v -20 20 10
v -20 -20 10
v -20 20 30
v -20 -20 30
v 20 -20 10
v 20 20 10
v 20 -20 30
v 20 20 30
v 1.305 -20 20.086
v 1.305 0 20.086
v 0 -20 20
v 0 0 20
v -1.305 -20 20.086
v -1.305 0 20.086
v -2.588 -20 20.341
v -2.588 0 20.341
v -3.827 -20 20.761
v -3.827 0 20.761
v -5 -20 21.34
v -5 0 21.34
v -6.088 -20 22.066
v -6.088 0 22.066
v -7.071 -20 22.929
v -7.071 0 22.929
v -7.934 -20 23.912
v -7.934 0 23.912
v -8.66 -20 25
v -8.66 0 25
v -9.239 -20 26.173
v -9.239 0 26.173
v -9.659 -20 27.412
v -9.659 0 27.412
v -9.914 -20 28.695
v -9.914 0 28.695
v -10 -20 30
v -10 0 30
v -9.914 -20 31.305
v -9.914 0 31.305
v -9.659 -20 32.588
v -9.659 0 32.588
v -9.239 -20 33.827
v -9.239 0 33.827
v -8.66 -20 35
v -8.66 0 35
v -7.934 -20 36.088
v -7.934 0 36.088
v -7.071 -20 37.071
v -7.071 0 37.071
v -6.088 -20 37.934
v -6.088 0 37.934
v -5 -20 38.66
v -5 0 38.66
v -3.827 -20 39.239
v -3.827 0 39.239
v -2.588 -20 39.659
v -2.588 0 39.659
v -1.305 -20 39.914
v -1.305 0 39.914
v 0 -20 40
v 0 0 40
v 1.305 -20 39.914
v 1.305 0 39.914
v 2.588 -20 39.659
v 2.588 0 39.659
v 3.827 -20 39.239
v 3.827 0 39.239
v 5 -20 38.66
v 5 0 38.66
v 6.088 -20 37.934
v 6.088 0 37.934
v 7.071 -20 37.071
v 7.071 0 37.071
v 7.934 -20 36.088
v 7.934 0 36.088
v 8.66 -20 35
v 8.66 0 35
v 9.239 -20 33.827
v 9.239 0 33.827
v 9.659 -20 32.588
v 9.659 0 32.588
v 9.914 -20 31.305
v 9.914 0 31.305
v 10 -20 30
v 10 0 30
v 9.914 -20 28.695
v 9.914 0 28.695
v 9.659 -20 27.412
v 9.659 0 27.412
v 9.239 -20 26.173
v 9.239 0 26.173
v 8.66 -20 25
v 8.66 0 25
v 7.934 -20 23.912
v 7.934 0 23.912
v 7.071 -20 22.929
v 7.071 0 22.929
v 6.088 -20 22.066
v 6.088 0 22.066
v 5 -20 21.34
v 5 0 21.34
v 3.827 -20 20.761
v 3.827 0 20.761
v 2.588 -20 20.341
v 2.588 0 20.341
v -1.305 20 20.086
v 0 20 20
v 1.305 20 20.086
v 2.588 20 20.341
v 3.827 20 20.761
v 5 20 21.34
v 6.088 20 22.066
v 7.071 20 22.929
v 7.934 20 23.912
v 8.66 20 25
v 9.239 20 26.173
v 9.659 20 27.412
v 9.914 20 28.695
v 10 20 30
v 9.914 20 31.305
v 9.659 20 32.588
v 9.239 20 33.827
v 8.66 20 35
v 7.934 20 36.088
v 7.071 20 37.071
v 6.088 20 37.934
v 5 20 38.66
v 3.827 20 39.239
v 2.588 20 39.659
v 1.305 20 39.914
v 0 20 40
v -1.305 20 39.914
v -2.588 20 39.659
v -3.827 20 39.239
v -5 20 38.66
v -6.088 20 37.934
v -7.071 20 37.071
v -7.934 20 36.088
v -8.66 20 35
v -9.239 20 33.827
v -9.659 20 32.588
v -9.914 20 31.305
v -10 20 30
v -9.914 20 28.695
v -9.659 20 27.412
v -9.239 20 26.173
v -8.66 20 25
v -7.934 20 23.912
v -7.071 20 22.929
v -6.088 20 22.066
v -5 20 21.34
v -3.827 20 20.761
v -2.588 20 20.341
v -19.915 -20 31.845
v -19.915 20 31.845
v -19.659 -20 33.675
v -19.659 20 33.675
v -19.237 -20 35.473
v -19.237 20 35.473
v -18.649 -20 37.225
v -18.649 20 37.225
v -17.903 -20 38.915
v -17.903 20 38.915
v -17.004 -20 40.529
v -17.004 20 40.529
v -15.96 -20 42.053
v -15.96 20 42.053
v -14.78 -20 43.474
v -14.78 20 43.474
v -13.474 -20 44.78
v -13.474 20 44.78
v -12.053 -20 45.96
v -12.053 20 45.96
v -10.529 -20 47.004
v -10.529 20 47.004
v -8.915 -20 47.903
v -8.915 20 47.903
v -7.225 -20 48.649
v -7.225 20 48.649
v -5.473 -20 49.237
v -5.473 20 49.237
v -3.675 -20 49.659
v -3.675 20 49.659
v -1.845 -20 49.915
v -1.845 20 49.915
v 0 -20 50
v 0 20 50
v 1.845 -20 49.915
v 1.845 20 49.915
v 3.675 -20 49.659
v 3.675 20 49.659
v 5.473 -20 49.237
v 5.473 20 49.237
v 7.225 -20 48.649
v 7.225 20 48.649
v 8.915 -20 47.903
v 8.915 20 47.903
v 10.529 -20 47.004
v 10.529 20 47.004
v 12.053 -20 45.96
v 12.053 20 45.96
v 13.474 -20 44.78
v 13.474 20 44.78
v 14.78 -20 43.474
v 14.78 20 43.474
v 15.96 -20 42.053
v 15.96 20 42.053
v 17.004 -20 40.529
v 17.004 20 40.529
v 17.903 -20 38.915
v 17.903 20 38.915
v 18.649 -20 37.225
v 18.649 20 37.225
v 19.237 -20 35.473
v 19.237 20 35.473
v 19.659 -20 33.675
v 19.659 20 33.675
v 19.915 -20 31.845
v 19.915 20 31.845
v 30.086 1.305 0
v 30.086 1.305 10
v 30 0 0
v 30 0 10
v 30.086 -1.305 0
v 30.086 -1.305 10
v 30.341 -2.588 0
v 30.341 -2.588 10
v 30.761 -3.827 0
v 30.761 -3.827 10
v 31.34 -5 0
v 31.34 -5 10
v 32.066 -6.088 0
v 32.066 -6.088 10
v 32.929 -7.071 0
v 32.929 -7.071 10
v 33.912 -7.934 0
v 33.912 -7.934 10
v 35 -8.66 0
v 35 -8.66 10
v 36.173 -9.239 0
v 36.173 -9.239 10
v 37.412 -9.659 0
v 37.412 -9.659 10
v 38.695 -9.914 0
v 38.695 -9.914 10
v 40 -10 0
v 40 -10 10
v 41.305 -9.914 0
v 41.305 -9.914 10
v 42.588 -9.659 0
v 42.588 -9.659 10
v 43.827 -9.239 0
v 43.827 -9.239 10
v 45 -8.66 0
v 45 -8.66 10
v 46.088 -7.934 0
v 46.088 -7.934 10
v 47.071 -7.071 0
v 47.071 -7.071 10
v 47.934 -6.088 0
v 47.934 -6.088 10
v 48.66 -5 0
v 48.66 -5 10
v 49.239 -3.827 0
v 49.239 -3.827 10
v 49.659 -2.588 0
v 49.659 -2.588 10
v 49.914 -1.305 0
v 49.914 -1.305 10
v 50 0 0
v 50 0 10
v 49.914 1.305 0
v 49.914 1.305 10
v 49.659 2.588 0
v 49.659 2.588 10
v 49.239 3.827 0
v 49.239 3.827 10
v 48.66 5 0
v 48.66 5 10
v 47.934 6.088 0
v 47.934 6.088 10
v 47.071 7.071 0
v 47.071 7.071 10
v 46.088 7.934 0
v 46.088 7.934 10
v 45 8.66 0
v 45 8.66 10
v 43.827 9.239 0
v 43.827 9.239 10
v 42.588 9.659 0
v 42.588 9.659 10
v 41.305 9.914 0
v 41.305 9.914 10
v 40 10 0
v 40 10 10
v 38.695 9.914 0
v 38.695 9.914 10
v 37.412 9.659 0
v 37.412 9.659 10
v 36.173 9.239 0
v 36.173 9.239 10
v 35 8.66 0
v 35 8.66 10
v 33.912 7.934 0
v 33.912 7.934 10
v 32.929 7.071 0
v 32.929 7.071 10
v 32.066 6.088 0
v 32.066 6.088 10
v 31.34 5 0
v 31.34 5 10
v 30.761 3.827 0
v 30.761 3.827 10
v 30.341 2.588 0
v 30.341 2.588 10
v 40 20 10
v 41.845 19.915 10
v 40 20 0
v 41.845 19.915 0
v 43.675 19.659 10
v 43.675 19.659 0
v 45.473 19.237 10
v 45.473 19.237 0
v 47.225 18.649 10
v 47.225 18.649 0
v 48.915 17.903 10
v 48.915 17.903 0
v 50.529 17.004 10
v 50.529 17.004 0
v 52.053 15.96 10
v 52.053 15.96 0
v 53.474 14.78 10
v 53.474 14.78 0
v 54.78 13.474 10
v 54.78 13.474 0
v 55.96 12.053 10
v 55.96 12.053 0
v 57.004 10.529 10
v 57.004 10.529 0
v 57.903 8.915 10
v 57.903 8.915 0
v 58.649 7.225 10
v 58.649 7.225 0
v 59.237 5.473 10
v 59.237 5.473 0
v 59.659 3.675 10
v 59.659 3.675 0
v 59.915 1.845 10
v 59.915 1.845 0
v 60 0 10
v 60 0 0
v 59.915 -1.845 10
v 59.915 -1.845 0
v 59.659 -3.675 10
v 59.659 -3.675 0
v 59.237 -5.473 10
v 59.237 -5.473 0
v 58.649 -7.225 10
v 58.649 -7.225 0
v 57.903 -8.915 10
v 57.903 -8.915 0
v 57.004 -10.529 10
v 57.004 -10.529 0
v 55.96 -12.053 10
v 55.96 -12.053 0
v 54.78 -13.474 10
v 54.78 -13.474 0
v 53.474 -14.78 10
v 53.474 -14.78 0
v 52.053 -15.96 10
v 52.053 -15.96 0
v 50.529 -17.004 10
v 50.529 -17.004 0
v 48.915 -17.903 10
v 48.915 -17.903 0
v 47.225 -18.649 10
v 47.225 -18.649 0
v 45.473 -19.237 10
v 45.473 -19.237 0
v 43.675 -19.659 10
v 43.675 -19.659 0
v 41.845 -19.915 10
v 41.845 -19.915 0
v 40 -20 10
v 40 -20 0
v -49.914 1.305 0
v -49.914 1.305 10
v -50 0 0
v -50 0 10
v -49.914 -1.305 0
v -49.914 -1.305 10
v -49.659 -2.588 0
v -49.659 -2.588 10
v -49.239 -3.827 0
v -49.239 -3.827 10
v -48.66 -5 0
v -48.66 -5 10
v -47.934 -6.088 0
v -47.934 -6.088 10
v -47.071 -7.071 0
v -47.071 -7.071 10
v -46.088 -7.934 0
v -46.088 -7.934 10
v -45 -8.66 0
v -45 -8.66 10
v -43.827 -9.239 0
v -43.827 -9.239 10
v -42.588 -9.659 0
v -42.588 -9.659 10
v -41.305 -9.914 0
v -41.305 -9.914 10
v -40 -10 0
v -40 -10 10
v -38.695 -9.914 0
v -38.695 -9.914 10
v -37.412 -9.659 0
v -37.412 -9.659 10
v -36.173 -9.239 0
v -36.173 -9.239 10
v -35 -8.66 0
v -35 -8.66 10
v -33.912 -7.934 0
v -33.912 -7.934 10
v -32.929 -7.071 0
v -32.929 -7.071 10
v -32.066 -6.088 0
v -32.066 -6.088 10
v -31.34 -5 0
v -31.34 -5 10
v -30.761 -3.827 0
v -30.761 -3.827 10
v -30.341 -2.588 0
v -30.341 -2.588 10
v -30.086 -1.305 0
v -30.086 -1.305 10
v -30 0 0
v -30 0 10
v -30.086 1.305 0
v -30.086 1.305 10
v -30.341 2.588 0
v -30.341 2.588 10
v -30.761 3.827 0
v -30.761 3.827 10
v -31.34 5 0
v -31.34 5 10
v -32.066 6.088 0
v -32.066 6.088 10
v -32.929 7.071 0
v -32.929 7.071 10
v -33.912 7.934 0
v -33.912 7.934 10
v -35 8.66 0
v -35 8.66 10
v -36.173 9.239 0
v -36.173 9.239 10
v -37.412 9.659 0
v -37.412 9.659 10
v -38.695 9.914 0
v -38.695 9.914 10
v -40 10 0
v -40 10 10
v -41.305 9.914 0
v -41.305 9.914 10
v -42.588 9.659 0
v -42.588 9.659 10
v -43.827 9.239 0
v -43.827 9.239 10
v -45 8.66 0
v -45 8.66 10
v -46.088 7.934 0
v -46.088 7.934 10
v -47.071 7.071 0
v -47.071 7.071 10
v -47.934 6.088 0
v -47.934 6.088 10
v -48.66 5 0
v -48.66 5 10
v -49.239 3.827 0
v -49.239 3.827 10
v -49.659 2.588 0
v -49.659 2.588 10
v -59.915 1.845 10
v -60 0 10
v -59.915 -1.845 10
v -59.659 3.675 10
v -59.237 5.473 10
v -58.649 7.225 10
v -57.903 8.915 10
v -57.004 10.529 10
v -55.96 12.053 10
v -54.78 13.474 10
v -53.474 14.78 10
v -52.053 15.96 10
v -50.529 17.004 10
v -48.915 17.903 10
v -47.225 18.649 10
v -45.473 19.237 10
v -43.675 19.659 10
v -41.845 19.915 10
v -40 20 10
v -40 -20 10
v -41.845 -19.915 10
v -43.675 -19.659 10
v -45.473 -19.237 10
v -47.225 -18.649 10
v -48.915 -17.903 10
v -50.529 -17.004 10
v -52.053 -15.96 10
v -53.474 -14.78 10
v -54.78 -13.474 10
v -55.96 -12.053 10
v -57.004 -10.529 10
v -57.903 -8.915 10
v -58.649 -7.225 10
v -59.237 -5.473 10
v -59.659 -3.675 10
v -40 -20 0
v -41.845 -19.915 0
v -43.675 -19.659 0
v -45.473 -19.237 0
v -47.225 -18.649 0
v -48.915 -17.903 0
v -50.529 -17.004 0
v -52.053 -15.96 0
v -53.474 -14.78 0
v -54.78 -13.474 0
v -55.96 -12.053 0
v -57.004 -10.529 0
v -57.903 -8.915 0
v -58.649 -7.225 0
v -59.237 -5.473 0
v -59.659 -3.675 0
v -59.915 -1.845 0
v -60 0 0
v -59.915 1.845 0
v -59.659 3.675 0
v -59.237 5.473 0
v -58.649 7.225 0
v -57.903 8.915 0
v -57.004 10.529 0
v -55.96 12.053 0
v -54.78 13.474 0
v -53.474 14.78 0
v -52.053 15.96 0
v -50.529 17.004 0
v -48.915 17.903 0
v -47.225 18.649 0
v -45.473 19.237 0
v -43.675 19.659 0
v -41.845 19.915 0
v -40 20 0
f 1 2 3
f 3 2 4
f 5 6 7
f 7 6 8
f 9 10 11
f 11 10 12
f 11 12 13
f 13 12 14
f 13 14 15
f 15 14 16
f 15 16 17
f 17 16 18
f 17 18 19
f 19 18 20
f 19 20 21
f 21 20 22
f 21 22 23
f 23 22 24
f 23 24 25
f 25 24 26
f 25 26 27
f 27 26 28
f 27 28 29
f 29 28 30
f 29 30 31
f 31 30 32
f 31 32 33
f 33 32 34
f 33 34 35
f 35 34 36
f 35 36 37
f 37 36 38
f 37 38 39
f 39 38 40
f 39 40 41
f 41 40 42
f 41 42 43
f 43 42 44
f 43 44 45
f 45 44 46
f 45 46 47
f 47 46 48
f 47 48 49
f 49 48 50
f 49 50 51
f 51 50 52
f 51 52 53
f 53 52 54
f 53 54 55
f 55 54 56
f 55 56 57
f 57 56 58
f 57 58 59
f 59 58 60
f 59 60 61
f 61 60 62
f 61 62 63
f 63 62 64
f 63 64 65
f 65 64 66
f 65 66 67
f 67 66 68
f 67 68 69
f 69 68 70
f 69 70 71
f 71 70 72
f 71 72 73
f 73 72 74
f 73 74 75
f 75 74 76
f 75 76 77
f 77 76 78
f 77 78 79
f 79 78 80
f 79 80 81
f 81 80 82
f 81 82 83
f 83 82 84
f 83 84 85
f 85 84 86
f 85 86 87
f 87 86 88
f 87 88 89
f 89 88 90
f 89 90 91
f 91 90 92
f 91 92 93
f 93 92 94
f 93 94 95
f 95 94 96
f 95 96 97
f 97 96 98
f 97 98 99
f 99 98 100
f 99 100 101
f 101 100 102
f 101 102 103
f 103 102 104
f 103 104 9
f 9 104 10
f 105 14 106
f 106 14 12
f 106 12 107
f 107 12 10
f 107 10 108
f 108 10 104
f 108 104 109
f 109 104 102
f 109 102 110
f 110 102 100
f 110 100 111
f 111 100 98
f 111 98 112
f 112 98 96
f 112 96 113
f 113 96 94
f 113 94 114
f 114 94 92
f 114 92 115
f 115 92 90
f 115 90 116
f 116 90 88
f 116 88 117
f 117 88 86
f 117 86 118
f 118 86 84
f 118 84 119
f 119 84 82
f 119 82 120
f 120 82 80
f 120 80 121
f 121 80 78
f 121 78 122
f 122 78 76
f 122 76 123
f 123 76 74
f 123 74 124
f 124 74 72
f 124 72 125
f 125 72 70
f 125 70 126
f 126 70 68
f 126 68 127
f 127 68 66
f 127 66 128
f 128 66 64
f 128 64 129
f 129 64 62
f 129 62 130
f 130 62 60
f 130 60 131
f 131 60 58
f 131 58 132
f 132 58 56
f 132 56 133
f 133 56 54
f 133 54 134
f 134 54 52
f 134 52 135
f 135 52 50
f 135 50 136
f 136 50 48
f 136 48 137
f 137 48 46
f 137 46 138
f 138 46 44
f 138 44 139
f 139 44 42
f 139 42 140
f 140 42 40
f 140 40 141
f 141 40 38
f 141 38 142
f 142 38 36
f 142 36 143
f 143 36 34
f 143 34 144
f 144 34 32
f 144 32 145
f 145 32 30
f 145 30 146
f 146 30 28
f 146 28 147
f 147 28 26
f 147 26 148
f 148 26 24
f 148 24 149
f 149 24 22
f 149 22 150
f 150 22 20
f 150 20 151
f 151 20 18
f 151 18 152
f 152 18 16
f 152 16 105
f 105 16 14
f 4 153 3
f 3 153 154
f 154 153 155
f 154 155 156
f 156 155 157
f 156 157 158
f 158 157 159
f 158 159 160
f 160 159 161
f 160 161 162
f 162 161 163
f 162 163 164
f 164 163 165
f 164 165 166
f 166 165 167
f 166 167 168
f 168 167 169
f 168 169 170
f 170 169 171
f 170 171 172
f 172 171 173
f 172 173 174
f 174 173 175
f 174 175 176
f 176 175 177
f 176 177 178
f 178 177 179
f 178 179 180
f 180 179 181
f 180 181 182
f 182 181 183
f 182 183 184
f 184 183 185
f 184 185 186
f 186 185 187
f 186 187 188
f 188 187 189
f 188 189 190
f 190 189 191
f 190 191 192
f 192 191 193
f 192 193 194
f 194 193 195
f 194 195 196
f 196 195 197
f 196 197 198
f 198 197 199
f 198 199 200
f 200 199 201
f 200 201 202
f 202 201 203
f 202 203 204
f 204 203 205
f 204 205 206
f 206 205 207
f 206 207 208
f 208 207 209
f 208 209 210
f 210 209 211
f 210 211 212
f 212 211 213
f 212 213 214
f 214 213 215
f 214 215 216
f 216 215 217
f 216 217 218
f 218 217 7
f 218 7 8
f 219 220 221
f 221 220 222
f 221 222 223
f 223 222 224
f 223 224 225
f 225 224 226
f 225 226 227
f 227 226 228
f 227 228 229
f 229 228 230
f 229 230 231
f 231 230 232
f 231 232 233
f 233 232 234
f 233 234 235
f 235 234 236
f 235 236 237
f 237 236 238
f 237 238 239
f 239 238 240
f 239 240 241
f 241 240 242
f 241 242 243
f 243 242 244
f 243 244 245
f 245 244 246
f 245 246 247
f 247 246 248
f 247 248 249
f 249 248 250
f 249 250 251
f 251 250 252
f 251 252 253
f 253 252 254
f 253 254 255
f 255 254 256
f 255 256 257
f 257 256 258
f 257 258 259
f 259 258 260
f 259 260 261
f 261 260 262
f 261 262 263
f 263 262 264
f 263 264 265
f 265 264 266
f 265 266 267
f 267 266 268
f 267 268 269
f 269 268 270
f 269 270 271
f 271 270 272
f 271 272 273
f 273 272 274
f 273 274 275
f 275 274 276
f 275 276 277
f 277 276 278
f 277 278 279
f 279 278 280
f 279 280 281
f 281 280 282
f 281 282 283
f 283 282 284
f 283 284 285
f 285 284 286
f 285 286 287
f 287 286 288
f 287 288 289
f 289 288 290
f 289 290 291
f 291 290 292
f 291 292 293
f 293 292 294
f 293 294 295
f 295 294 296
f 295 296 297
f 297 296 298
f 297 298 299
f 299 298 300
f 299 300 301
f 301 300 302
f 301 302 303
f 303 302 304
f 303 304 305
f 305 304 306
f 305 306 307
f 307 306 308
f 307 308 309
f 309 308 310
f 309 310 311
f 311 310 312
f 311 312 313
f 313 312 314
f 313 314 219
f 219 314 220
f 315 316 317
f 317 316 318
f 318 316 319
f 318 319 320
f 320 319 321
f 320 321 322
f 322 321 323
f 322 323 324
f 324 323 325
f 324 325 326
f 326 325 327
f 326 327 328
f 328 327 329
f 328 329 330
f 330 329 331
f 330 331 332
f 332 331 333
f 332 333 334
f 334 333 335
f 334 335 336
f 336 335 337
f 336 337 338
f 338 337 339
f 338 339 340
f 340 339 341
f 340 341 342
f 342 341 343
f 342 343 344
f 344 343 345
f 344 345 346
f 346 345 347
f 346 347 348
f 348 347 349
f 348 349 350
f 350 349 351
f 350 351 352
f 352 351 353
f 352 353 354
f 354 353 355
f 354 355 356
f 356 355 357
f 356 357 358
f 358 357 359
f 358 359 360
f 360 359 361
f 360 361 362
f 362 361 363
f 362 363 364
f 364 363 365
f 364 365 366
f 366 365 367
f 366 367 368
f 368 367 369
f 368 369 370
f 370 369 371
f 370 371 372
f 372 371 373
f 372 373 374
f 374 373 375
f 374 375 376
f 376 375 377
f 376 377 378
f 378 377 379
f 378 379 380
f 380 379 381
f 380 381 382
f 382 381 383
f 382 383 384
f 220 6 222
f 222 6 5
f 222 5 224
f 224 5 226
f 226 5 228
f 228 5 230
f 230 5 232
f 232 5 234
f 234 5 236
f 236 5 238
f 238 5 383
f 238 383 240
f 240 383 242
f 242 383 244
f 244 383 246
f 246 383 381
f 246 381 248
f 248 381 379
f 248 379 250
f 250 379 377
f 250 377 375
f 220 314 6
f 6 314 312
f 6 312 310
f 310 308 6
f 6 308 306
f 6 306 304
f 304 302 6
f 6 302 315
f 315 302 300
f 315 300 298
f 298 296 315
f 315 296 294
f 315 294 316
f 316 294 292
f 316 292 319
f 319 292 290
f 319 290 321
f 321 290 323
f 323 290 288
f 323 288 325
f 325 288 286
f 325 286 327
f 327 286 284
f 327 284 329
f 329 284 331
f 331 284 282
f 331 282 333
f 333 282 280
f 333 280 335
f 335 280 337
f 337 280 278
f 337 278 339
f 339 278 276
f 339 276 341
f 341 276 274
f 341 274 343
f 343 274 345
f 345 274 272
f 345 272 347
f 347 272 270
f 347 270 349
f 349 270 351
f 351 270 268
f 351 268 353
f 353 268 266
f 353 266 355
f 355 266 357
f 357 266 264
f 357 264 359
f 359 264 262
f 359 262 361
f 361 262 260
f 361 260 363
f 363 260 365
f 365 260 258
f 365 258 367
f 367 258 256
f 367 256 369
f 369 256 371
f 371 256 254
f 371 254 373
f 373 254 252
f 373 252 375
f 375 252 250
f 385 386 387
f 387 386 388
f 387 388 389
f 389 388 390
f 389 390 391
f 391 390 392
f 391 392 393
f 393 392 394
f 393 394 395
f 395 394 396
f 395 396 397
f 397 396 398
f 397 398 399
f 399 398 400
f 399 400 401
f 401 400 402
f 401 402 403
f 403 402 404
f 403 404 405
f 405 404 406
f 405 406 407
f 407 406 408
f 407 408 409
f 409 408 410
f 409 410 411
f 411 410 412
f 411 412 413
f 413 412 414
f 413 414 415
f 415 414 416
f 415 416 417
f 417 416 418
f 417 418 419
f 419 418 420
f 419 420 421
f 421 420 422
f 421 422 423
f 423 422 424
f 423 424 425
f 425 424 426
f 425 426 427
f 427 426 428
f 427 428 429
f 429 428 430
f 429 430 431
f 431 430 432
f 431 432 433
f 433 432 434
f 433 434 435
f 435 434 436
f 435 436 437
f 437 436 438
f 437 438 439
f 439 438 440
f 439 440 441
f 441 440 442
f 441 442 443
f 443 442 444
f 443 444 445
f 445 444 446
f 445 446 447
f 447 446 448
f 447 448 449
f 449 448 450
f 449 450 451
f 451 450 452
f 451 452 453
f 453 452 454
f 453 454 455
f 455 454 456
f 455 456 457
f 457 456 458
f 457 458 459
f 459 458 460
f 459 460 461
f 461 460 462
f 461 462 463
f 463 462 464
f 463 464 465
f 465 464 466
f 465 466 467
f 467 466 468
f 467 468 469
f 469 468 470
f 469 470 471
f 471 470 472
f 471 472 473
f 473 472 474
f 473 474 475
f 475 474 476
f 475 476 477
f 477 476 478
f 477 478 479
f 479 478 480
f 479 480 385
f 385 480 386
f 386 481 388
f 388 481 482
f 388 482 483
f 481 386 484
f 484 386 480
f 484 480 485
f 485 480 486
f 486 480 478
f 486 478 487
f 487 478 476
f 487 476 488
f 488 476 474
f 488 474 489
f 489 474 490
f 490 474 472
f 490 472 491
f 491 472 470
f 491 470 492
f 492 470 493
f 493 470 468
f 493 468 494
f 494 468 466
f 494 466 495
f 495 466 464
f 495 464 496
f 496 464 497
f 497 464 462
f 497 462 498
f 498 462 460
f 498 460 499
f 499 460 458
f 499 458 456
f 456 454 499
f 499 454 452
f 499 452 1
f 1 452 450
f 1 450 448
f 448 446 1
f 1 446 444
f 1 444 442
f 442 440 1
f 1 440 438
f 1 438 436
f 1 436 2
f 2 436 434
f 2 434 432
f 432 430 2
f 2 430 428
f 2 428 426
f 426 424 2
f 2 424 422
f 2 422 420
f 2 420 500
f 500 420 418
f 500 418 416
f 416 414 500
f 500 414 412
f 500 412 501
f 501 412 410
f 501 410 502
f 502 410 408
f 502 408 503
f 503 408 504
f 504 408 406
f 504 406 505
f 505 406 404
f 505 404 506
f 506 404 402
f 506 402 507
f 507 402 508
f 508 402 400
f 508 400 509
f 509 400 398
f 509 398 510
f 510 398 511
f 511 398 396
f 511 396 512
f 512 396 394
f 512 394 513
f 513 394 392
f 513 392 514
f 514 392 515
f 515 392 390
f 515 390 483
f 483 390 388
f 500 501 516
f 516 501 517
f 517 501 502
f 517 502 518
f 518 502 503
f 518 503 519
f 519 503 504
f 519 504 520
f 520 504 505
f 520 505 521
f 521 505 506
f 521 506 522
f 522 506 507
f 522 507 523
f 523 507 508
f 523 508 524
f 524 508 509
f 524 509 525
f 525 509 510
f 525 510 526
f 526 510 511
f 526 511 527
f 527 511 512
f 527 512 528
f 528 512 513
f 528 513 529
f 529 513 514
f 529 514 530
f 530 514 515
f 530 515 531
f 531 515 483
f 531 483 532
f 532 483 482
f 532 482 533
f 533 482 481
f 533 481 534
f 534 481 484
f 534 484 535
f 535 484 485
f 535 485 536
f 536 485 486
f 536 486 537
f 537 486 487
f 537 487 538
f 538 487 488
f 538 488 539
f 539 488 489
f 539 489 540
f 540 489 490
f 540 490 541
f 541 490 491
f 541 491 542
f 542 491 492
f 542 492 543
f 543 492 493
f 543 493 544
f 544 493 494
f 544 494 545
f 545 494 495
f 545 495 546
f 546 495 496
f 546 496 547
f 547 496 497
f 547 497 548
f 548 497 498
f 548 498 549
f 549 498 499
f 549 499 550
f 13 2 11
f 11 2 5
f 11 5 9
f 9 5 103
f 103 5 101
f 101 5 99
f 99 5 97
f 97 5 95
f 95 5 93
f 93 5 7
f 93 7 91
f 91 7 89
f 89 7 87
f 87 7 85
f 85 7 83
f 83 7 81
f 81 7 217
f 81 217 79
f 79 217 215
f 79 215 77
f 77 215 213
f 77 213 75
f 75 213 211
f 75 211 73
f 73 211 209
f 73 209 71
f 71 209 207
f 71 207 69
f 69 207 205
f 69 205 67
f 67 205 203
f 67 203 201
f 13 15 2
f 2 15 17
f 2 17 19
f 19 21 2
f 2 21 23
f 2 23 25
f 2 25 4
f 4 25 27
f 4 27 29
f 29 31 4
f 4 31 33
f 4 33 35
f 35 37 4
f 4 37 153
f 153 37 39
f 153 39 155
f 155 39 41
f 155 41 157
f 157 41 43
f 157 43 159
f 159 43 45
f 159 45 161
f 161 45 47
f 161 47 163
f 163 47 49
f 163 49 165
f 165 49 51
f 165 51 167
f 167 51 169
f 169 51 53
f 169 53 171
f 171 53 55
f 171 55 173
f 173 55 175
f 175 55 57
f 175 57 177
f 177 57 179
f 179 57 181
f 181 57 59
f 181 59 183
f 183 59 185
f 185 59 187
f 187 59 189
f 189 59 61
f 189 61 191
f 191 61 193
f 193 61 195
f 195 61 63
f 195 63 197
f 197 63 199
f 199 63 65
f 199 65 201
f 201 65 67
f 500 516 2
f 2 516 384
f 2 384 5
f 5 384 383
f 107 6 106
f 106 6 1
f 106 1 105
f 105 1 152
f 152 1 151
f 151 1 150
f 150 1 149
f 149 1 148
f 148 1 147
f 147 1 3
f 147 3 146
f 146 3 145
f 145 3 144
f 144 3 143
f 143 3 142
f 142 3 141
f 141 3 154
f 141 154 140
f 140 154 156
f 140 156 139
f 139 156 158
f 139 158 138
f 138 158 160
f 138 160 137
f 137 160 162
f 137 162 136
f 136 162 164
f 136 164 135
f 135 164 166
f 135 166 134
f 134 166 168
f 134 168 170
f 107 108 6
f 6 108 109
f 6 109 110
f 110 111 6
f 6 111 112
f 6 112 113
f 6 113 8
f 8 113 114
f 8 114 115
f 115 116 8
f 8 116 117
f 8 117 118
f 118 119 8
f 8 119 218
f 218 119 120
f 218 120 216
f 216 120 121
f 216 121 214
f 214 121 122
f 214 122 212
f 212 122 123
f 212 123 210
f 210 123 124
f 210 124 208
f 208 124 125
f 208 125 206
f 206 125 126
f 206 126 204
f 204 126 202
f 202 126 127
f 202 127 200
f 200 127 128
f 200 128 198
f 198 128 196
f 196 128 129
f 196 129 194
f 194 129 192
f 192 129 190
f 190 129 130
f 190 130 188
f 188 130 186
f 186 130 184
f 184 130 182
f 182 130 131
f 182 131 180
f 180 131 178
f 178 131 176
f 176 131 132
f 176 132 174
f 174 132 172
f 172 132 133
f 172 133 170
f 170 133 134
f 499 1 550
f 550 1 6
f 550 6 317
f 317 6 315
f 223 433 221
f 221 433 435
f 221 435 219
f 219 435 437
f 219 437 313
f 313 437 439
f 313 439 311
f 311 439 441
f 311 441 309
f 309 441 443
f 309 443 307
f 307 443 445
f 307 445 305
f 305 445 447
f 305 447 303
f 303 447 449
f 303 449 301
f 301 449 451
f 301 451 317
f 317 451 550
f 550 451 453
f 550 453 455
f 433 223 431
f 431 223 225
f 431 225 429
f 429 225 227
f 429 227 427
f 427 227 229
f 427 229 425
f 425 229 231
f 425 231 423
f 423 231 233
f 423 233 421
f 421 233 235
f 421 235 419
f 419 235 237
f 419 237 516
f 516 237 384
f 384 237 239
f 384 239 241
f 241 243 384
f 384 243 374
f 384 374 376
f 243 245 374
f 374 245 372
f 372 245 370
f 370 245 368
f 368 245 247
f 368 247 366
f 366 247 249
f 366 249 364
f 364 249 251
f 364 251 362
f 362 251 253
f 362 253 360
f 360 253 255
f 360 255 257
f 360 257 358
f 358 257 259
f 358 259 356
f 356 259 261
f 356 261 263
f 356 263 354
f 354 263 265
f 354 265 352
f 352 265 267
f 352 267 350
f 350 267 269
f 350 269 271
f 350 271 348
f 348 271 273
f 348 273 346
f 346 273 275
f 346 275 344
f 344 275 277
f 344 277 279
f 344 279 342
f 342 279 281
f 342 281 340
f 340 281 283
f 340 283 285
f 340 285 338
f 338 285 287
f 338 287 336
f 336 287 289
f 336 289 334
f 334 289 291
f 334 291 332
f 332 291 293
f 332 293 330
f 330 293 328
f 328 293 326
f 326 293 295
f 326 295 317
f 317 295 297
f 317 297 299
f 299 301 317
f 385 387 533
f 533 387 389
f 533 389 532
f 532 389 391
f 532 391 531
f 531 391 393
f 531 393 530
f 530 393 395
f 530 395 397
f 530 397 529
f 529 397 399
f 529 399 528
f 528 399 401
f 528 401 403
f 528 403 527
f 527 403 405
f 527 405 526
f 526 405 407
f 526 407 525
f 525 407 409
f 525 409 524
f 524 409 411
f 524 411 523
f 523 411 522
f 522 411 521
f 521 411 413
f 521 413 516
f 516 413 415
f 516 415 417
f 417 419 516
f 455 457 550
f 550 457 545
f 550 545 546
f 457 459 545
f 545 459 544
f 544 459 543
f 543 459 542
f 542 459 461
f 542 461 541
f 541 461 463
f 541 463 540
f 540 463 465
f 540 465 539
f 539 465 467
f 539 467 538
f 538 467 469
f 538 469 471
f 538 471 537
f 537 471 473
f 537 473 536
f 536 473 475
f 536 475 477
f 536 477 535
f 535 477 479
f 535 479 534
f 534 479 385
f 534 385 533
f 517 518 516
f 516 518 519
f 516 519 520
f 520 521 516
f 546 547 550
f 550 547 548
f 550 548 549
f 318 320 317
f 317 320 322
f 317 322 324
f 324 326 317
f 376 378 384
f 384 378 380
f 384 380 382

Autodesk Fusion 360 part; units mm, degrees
sketch "Sketch1" plane through (0, 0, 0) normal (0, 0, 1) x (1, 0, 0)
  line L0 (40, 20) -> (-40, 20)
  line L1 (-40, 20) -> (-40, -20)
  line L2 (-40, -20) -> (40, -20)
  line L3 (40, -20) -> (40, 20)
  line L4 (40, 20) -> (-40, -20) construction
  line L5 (-40, 20) -> (40, -20) construction
  line L6 (-40, -20) -> (-20, -20) construction
  line L7 (-40, -20) -> (-20, -20) construction
  line L8 (40, -20) -> (20, -20) construction
  line L9 (-20, -20) -> (-20, 20)
  line L10 (20, -20) -> (20, 20)
  line L11 (-40, -20) -> (-60, -20)
  line L12 (-40, 20) -> (-60, 20)
  line L13 (-60, 20) -> (-60, -20)
  line L14 (40, 20) -> (60, 20)
  line L15 (60, 20) -> (60, -20)
  line L16 (60, -20) -> (40, -20)
  line L17 (-40, 0) -> (-40, 20) construction
  line L18 (40, 20) -> (40, 0) construction
  dimension "d1" = 80
  dimension "d2" = 40
  dimension "d3" = 20
  dimension "d4" = 20
  dimension "d5" = 20
extrude "Extrude2" add sketch "Sketch1" along normal blind 50 contours L0 L2 L9 L10 makes body 1
extrude "Extrude1" add sketch "Sketch1" along normal blind 10 separate body contours L0 L2 L3 L10 | L3 L14 L15 L16 | L0 L1 L2 L9 | L1 L11 L12 L13 makes body 2 at (-33.3333, -6.6667, 0) makes body 3 at (46.6667, -6.6667, 0)
fillet "Fillet1" radius 20 4 edges at (-60, -20, 5) (-60, 20, 5) (60, -20, 5) (60, 20, 5) on bodies 2 3
hole "Hole1" at (-40, 0, 0) direction (0, 0, 1) diameter 20 depth 10 tip angle 118 bodies 2
hole "Hole2" at (40, 0, 0) direction (0, 0, 1) diameter 20 depth 10 tip angle 118 bodies 3
fillet "Fillet2" radius 20 2 edges at (-20, 0, 50) (20, 0, 50) on bodies 1
sketch "Sketch2" plane through (0, -20, 0) normal (0, -1, 0) x (1, 0, 0)
  arc A0 (20, 30) -> (-20, 30) centre (0, 30) ccw
  line L0 (-20, 30) -> (-20, 0)
  line L1 (-20, 0) -> (20, 0)
  line L2 (20, 0) -> (20, 30)
  line L3 (-20, 30) -> (20, 30) construction
hole "Hole3" at (0, -20, 30) direction (0, 1, 0) diameter 20 depth 40 tip angle 118 bodies 1
combine "Combine1" operation add target body 2 tool bodies 3 1
